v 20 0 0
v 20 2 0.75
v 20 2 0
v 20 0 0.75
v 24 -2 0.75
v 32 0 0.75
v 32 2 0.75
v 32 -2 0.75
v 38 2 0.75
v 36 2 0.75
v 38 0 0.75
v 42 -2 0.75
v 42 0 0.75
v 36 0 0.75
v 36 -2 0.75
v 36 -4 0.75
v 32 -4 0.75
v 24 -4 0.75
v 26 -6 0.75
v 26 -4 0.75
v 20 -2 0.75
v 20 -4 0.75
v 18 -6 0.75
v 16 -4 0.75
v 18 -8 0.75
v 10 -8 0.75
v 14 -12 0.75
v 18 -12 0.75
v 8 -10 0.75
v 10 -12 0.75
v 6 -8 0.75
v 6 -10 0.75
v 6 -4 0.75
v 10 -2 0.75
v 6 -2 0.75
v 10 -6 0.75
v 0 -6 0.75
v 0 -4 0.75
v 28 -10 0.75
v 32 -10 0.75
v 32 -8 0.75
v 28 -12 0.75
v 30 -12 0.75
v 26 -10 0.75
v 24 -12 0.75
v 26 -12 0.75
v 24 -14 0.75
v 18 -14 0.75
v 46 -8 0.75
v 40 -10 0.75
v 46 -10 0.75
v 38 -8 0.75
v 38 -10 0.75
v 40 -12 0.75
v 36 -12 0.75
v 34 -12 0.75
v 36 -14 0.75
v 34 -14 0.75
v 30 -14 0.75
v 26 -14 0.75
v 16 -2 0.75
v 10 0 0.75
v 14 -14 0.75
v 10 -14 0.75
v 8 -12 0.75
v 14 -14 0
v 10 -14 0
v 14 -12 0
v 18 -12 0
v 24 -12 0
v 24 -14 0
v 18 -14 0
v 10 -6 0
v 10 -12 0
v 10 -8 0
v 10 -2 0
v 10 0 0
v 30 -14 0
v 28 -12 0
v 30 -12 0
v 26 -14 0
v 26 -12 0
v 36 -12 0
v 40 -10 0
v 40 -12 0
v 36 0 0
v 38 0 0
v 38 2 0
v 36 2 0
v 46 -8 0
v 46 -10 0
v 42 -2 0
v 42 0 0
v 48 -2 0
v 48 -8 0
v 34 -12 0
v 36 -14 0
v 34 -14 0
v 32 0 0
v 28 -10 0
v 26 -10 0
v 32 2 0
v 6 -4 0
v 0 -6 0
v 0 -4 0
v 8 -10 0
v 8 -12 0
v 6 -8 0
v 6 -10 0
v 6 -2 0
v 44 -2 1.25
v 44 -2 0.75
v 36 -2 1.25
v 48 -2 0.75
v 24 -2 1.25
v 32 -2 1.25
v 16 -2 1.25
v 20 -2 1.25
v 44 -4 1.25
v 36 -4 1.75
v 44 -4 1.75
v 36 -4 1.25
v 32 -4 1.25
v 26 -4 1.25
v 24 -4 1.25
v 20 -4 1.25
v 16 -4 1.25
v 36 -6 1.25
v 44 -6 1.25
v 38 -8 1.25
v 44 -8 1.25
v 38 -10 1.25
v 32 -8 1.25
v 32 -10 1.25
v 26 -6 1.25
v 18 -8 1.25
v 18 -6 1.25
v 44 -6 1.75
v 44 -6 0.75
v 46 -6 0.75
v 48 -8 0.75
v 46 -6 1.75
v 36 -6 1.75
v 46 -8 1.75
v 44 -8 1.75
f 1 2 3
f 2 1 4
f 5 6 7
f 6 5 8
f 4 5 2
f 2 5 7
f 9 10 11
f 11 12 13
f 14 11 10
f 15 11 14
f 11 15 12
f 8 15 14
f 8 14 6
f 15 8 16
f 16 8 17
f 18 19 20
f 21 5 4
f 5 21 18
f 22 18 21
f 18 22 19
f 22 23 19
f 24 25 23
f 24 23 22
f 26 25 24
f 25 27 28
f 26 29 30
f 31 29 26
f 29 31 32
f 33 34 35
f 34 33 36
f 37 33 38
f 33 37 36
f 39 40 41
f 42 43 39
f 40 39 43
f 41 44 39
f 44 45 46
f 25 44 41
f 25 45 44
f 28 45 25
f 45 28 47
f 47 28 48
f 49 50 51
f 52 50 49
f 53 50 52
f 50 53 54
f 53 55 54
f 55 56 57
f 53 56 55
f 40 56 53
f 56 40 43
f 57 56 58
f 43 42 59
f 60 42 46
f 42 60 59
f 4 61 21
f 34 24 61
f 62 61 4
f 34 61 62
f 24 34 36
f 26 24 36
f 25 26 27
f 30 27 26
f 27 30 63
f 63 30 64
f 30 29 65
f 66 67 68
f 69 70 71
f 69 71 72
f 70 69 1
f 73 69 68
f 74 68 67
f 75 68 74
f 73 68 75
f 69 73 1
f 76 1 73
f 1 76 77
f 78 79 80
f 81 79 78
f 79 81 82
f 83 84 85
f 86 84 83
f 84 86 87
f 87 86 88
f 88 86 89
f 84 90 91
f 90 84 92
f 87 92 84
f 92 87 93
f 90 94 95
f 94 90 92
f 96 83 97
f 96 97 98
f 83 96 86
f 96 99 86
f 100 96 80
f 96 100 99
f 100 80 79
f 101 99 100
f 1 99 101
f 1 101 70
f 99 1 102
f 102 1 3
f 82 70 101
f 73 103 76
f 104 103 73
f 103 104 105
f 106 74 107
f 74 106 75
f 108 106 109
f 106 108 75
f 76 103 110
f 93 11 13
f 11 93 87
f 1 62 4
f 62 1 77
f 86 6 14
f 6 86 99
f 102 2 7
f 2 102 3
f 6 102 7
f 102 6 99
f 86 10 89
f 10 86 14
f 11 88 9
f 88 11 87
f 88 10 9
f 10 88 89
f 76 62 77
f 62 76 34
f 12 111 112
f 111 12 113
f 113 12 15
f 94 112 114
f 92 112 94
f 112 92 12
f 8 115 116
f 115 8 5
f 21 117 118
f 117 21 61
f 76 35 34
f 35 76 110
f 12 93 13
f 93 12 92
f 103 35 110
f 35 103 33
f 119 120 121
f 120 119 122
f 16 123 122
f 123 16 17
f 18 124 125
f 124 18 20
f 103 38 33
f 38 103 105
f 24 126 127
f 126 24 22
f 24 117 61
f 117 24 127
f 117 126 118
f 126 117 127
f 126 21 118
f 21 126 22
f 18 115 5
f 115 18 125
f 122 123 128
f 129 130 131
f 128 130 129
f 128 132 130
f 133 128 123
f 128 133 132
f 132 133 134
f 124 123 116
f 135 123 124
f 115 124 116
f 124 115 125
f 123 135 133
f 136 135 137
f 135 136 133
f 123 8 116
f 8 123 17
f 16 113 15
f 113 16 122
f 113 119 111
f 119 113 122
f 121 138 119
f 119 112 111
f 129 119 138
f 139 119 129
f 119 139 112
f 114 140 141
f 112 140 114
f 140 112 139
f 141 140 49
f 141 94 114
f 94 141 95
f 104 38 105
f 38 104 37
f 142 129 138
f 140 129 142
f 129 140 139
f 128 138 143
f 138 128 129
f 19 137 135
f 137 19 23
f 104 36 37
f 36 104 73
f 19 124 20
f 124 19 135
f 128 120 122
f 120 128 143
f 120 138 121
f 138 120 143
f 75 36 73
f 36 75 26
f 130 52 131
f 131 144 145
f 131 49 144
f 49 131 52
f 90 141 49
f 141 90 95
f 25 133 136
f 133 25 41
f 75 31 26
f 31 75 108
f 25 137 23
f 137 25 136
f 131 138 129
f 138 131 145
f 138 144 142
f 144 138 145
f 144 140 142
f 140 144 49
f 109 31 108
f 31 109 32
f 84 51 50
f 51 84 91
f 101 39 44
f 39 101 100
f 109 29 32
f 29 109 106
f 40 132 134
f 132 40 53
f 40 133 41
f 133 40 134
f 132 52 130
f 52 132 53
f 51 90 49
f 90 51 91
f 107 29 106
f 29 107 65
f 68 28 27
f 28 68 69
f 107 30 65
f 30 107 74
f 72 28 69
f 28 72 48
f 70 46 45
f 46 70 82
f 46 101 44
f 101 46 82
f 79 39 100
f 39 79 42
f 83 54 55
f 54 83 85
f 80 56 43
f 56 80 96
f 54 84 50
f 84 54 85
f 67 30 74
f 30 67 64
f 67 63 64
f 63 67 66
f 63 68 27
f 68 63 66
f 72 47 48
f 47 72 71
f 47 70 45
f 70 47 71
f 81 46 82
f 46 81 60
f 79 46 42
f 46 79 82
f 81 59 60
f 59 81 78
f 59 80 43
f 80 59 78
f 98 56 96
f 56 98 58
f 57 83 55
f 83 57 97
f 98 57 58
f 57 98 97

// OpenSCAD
pixel_width  = 2;

module pixel(x, y, h) {
    translate([x*pixel_width,y*pixel_width,0])
    cube([pixel_width, pixel_width, h]);
}


union() {
    pixel(10, 0, 0.75);
    pixel(11, 0, 0.75);
    pixel(12, 0, 0.75);
    pixel(13, 0, 0.75);
    pixel(14, 0, 0.75);
    pixel(15, 0, 0.75);
    pixel(18, 0, 0.75);
    pixel(5, -1, 0.75);
    pixel(6, -1, 0.75);
    pixel(7, -1, 0.75);
    pixel(8, -1, 0.75);
    pixel(9, -1, 0.75);
    pixel(10, -1, 0.75);
    pixel(11, -1, 0.75);
    pixel(12, -1, 0.75);
    pixel(13, -1, 0.75);
    pixel(14, -1, 0.75);
    pixel(15, -1, 0.75);
    pixel(16, -1, 0.75);
    pixel(17, -1, 0.75);
    pixel(18, -1, 0.75);
    pixel(19, -1, 0.75);
    pixel(20, -1, 0.75);
    pixel(3, -2, 0.75);
    pixel(4, -2, 0.75);
    pixel(5, -2, 0.75);
    pixel(6, -2, 0.75);
    pixel(7, -2, 0.75);
    pixel(8, -2, 1.25);
    pixel(9, -2, 1.25);
    pixel(10, -2, 0.75);
    pixel(11, -2, 0.75);
    pixel(12, -2, 1.25);
    pixel(13, -2, 1.25);
    pixel(14, -2, 1.25);
    pixel(15, -2, 1.25);
    pixel(16, -2, 0.75);
    pixel(17, -2, 0.75);
    pixel(18, -2, 1.25);
    pixel(19, -2, 1.25);
    pixel(20, -2, 1.25);
    pixel(21, -2, 1.25);
    pixel(22, -2, 0.75);
    pixel(23, -2, 0.75);
    pixel(0, -3, 0.75);
    pixel(1, -3, 0.75);
    pixel(2, -3, 0.75);
    pixel(3, -3, 0.75);
    pixel(4, -3, 0.75);
    pixel(5, -3, 0.75);
    pixel(6, -3, 0.75);
    pixel(7, -3, 0.75);
    pixel(8, -3, 0.75);
    pixel(9, -3, 0.75);
    pixel(10, -3, 0.75);
    pixel(11, -3, 0.75);
    pixel(12, -3, 0.75);
    pixel(13, -3, 1.25);
    pixel(14, -3, 1.25);
    pixel(15, -3, 1.25);
    pixel(16, -3, 1.25);
    pixel(17, -3, 1.25);
    pixel(18, -3, 1.75);
    pixel(19, -3, 1.75);
    pixel(20, -3, 1.75);
    pixel(21, -3, 1.75);
    pixel(22, -3, 0.75);
    pixel(23, -3, 0.75);
    pixel(5, -4, 0.75);
    pixel(6, -4, 0.75);
    pixel(7, -4, 0.75);
    pixel(8, -4, 0.75);
    pixel(9, -4, 1.25);
    pixel(10, -4, 1.25);
    pixel(11, -4, 1.25);
    pixel(12, -4, 1.25);
    pixel(13, -4, 1.25);
    pixel(14, -4, 1.25);
    pixel(15, -4, 1.25);
    pixel(16, -4, 1.25);
    pixel(17, -4, 1.25);
    pixel(18, -4, 1.25);
    pixel(19, -4, 1.25);
    pixel(20, -4, 1.25);
    pixel(21, -4, 1.25);
    pixel(22, -4, 1.75);
    pixel(23, -4, 0.75);
    pixel(3, -5, 0.75);
    pixel(4, -5, 0.75);
    pixel(5, -5, 0.75);
    pixel(6, -5, 0.75);
    pixel(7, -5, 0.75);
    pixel(8, -5, 0.75);
    pixel(9, -5, 0.75);
    pixel(10, -5, 0.75);
    pixel(11, -5, 0.75);
    pixel(12, -5, 0.75);
    pixel(13, -5, 0.75);
    pixel(14, -5, 0.75);
    pixel(15, -5, 0.75);
    pixel(16, -5, 1.25);
    pixel(17, -5, 1.25);
    pixel(18, -5, 1.25);
    pixel(19, -5, 0.75);
    pixel(20, -5, 0.75);
    pixel(21, -5, 0.75);
    pixel(22, -5, 0.75);
    pixel(4, -6, 0.75);
    pixel(5, -6, 0.75);
    pixel(6, -6, 0.75);
    pixel(7, -6, 0.75);
    pixel(8, -6, 0.75);
    pixel(9, -6, 0.75);
    pixel(10, -6, 0.75);
    pixel(11, -6, 0.75);
    pixel(12, -6, 0.75);
    pixel(14, -6, 0.75);
    pixel(15, -6, 0.75);
    pixel(16, -6, 0.75);
    pixel(17, -6, 0.75);
    pixel(18, -6, 0.75);
    pixel(19, -6, 0.75);
    pixel(5, -7, 0.75);
    pixel(6, -7, 0.75);
    pixel(9, -7, 0.75);
    pixel(10, -7, 0.75);
    pixel(11, -7, 0.75);
    pixel(13, -7, 0.75);
    pixel(14, -7, 0.75);
    pixel(17, -7, 0.75);
}
